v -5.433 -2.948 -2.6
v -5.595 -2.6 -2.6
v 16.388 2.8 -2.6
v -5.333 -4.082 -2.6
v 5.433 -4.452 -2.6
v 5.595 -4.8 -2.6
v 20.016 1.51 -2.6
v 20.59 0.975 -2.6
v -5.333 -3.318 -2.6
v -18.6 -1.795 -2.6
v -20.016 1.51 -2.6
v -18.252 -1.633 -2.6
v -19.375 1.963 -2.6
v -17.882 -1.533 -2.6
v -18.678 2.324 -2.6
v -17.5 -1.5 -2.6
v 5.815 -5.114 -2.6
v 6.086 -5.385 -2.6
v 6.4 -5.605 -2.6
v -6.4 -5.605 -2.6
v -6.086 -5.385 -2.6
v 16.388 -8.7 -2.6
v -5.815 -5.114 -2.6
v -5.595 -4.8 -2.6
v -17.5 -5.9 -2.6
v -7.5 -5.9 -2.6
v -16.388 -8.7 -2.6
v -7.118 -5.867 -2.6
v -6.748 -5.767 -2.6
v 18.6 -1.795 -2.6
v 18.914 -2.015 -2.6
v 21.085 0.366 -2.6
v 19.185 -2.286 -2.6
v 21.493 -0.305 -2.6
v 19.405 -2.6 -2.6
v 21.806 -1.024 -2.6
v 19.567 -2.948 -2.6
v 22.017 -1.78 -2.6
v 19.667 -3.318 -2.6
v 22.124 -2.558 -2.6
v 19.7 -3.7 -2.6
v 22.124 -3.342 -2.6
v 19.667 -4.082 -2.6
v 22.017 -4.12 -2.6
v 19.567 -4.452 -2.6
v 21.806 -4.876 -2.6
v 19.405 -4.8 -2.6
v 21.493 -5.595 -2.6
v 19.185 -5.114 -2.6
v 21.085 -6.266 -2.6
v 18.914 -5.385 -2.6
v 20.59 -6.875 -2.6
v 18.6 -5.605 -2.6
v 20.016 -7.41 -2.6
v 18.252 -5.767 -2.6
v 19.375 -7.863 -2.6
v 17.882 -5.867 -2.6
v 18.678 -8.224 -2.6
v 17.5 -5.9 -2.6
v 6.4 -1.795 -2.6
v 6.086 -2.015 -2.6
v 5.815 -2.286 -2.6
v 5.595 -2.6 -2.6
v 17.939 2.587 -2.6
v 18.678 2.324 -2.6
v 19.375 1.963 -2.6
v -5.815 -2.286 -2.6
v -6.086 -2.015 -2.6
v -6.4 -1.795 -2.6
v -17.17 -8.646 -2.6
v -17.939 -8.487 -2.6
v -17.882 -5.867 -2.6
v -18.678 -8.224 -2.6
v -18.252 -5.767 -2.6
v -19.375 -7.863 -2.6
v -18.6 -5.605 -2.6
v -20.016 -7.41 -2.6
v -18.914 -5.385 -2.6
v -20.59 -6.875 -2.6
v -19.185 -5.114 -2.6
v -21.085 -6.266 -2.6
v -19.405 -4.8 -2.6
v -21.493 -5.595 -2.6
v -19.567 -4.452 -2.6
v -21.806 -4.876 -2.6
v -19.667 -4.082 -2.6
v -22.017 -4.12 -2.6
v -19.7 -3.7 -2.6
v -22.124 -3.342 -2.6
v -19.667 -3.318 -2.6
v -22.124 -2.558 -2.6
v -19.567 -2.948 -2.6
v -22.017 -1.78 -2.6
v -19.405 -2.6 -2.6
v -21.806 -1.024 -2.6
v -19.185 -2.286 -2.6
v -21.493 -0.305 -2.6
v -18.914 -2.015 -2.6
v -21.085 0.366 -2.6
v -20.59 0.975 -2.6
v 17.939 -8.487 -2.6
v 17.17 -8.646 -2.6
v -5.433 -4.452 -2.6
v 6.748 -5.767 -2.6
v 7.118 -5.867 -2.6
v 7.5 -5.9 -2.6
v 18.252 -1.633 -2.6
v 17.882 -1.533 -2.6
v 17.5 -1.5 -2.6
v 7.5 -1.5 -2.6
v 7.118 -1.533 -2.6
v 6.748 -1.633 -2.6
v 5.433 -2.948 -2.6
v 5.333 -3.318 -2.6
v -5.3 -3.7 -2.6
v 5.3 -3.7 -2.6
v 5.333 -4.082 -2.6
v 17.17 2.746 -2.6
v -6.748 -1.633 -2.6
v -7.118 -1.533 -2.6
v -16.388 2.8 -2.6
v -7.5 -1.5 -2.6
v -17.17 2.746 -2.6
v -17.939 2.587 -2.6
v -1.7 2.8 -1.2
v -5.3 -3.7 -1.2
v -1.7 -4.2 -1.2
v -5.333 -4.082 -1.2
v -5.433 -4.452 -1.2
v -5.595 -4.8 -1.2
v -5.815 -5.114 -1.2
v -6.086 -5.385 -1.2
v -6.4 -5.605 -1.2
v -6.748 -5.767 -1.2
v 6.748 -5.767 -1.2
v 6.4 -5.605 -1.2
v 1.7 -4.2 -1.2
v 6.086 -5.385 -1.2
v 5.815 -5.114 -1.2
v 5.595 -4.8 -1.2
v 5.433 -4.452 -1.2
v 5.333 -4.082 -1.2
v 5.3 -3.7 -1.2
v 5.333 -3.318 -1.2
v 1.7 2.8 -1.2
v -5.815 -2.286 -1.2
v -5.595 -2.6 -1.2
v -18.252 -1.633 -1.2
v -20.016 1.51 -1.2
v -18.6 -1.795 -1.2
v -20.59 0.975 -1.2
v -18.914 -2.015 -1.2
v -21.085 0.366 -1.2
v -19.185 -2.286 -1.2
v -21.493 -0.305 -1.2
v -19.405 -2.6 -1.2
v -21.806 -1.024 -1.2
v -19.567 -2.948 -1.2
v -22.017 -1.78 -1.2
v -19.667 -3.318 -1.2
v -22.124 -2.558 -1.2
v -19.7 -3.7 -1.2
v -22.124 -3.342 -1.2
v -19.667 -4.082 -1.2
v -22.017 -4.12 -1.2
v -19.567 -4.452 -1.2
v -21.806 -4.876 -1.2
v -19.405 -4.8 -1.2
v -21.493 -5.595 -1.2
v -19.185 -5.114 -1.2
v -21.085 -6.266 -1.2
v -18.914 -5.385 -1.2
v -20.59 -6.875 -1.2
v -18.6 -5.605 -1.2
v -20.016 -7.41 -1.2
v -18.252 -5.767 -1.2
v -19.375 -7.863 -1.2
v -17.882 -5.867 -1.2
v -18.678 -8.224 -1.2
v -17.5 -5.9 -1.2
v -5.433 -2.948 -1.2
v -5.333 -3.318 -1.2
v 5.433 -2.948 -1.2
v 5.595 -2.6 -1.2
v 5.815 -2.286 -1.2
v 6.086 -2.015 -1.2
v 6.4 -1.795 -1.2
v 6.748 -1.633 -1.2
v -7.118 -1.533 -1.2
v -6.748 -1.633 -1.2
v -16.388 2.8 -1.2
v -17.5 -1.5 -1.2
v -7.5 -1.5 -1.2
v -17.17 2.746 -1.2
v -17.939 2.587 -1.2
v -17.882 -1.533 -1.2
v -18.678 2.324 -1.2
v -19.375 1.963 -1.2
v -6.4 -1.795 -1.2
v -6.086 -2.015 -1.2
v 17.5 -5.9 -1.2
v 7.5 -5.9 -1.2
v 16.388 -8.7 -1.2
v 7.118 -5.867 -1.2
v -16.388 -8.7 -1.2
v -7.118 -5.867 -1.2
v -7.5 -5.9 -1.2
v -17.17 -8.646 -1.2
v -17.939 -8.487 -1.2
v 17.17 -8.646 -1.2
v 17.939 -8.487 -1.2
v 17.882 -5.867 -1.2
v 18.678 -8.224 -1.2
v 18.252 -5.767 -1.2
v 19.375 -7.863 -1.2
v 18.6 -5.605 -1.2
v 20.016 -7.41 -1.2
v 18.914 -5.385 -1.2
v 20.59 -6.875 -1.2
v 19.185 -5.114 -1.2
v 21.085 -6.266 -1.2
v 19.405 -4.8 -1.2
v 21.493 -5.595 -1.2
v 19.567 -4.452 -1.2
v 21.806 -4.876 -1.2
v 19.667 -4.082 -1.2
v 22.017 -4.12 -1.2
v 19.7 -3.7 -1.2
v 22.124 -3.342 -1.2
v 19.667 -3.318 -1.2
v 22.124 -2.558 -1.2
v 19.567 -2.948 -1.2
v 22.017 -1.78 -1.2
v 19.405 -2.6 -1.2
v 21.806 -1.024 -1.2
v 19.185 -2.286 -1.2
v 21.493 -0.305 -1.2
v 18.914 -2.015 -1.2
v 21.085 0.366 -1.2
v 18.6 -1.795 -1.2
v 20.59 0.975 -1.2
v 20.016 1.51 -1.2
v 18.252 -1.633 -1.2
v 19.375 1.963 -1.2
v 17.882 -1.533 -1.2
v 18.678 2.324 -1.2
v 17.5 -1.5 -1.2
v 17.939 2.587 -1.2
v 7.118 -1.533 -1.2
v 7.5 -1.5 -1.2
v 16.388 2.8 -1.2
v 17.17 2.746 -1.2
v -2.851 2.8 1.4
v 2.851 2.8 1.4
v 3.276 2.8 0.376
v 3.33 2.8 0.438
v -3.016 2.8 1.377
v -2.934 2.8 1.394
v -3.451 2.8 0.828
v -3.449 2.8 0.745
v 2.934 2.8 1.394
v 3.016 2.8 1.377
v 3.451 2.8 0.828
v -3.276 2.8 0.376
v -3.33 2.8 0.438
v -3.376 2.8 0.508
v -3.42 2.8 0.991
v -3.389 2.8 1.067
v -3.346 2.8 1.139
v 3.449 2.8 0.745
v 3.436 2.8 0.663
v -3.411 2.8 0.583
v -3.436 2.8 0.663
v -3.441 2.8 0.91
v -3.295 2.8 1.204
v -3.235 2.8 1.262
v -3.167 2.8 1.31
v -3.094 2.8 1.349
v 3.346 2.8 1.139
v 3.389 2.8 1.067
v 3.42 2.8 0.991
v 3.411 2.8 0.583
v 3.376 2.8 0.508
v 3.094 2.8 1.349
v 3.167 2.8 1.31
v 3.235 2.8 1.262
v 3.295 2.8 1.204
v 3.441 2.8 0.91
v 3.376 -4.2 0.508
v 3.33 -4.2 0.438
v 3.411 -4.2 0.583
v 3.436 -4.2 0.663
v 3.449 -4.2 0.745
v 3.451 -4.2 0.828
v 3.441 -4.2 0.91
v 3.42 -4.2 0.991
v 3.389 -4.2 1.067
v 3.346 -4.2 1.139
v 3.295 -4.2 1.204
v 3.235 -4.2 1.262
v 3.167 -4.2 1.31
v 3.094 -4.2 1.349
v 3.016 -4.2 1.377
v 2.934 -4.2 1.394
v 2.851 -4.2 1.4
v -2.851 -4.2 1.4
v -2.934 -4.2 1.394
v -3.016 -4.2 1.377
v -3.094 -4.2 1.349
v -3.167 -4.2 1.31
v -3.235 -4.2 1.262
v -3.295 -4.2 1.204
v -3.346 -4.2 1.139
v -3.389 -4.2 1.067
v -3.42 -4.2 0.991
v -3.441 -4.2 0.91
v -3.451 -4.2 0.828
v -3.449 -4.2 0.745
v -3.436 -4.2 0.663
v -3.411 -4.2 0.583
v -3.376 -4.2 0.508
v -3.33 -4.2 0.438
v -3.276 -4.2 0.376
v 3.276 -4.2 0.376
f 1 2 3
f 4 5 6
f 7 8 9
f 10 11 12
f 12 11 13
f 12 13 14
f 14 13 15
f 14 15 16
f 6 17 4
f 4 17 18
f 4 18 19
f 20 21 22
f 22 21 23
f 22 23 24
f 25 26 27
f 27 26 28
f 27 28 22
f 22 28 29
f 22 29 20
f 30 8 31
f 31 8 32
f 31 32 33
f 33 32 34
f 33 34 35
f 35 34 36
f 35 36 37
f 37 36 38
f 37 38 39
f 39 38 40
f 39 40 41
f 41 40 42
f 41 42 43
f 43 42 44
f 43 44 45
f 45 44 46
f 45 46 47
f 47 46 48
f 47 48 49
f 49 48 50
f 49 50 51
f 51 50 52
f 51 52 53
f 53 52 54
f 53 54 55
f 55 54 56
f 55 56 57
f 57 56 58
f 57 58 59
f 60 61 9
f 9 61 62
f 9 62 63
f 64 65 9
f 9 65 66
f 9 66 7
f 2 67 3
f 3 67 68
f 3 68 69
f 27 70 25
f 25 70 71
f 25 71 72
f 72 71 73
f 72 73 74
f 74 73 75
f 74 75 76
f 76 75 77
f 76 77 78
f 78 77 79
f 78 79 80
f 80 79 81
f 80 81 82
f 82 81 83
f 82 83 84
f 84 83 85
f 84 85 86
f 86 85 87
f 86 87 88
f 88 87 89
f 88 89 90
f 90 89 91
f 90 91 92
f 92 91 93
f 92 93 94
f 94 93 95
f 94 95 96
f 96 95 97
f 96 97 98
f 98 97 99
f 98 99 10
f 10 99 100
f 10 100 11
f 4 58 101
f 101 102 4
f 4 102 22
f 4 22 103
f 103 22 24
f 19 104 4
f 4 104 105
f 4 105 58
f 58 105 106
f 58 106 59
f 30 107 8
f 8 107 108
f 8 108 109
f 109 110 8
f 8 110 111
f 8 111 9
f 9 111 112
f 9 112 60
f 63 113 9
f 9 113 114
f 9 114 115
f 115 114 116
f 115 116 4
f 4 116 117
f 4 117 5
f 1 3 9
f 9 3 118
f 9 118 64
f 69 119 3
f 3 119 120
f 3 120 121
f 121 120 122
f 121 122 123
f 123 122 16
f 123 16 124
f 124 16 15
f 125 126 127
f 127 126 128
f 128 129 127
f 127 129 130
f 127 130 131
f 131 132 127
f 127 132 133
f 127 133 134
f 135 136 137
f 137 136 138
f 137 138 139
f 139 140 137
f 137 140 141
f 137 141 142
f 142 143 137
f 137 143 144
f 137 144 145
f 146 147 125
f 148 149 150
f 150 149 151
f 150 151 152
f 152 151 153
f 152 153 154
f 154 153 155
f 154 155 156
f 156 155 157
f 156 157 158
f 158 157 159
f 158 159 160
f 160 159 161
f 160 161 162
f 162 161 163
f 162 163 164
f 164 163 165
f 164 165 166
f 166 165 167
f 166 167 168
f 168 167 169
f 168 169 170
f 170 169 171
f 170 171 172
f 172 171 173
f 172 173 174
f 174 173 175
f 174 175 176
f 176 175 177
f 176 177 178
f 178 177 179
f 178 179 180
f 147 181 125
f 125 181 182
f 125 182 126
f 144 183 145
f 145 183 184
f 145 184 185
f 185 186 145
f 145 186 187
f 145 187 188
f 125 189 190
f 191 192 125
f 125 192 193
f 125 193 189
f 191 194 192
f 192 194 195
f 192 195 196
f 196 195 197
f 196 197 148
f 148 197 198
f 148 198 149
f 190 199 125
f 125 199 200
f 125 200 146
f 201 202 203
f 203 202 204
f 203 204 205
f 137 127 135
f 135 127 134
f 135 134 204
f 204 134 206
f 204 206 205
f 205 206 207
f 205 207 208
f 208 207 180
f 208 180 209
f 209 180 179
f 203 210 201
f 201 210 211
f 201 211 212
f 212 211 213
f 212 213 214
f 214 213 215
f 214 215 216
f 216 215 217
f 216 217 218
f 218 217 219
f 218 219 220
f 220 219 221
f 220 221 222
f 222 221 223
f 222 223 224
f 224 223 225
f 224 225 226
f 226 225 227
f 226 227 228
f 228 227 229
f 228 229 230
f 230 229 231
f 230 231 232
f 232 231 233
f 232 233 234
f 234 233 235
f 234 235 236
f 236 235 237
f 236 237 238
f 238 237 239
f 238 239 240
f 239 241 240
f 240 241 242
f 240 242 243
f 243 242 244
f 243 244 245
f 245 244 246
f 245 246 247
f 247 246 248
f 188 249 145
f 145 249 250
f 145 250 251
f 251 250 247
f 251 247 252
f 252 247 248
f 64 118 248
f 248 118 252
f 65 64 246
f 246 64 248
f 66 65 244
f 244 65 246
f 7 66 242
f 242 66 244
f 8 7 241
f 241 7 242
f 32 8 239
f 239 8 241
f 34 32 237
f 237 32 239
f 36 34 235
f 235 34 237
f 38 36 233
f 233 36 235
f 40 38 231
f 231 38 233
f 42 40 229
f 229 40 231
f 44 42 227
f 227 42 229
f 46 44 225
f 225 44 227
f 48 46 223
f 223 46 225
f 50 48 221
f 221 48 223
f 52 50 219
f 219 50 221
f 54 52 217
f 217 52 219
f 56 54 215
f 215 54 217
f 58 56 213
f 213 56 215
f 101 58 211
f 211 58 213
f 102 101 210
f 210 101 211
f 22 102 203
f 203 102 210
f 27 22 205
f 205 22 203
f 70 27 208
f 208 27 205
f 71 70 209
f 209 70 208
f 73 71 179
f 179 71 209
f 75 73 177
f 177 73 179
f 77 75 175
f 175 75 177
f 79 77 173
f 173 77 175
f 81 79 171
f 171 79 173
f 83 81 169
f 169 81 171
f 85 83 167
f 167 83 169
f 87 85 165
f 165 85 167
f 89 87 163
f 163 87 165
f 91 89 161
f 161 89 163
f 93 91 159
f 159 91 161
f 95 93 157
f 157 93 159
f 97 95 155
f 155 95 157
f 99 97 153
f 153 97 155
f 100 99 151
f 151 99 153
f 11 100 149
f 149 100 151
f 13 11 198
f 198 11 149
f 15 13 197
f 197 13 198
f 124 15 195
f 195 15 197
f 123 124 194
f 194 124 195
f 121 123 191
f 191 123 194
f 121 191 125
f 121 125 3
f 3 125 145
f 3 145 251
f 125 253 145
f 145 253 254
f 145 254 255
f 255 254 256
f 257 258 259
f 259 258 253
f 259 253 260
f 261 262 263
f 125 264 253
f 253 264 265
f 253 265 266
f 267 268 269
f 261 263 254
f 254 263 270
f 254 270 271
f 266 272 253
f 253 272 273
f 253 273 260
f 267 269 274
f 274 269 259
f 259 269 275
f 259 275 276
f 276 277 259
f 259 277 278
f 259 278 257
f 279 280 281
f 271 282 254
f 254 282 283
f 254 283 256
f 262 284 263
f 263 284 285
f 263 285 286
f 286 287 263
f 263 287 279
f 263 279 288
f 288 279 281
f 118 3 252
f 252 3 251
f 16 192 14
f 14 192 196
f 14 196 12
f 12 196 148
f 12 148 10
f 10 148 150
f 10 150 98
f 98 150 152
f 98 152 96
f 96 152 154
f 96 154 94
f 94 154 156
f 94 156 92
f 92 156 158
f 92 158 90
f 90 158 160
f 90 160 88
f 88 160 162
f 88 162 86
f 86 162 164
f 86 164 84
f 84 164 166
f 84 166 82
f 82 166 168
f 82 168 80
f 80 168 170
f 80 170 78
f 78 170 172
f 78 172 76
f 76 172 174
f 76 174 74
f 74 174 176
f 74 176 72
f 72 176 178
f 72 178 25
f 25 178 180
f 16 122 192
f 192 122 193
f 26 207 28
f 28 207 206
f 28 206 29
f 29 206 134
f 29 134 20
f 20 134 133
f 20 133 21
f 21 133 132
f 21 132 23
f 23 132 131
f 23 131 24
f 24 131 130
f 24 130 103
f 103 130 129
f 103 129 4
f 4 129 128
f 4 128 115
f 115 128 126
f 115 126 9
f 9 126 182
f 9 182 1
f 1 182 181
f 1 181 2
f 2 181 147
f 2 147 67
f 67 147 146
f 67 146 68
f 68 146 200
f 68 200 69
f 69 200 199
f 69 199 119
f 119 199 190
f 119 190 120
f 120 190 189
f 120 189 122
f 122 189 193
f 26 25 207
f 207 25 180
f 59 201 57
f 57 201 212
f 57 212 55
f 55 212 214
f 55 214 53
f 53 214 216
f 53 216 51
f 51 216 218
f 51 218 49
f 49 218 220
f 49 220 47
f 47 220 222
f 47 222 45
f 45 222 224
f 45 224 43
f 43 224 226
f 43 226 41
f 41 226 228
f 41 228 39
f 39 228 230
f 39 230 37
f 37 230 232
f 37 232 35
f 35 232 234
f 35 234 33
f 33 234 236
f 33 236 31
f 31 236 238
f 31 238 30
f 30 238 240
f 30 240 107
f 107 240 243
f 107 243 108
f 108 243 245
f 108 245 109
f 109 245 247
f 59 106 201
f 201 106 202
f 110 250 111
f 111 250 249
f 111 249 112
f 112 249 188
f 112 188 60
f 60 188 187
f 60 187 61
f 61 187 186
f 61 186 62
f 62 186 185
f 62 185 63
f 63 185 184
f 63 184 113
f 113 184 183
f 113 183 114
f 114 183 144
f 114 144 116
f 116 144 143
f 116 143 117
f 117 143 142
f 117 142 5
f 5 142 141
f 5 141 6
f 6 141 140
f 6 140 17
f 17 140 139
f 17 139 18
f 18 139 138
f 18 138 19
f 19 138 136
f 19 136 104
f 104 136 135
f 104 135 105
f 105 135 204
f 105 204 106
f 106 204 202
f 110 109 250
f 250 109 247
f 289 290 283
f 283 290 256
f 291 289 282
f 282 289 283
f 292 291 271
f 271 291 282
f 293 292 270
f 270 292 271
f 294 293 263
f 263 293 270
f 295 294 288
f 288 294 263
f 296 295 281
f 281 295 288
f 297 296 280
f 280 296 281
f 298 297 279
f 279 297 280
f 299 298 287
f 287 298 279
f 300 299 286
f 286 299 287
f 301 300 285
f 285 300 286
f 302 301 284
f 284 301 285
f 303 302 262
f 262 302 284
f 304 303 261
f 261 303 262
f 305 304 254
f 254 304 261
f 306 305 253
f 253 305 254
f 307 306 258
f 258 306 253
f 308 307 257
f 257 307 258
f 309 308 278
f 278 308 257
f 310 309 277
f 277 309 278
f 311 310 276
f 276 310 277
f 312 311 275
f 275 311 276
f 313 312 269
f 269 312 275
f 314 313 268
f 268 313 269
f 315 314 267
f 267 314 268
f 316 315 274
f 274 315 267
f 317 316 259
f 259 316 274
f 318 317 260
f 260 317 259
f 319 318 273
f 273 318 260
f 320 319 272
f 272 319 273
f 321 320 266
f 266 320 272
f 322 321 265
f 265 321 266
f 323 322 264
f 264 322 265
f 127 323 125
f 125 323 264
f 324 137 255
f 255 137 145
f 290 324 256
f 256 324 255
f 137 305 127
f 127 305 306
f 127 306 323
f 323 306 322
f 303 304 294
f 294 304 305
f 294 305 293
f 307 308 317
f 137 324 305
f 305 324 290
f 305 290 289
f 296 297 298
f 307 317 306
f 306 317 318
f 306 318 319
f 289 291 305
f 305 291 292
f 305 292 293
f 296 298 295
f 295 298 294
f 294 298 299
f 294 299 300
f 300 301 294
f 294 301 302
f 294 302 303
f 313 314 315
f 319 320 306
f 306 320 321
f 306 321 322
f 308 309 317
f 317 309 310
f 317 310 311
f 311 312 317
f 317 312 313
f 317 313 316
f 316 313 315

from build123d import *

# Parameters (mm, degrees)
BOSS_EXTRUDE1_DEPTH = 1.39999995
CUT_EXTRUDE1_DEPTH  = 2.39999995
BOSS_EXTRUDE2_DEPTH = 6.99999975


with BuildPart() as part:
    # Sketch1 → Boss-Extrude1 (new body)
    with BuildSketch(Plane.XY.offset(-1.200000057)):
        Polygon((17.170472071, 2.74639437), (16.38751477, 2.799950074), (-16.38751477, 2.799950074), (-17.170472071, 2.74639437), (-17.93884486, 2.586724702), (-18.678320572, 2.323914785), (-19.375121221, 1.962861512), (-20.016269758, 1.510289963), (-20.589821041, 0.974630471), (-21.085090935, 0.365861692), (-21.492853761, -0.304676127), (-21.80551365, -1.024491969), (-22.017247975, -1.780177932), (-22.12410979, -2.557656262), (-22.12410979, -3.342443844), (-22.017247975, -4.119921941), (-21.80551365, -4.875607789), (-21.492853761, -5.595424213), (-21.085090935, -6.265962031), (-20.589821041, -6.874730811), (-20.016269758, -7.410389837), (-19.375121221, -7.862961851), (-18.678320572, -8.224015124), (-17.93884486, -8.48682411), (-17.170472071, -8.646493778), (-16.38751477, -8.700050414), (16.38751477, -8.700050414), (17.170472071, -8.646493778), (17.93884486, -8.48682411), (18.678320572, -8.224015124), (19.375121221, -7.862961851), (20.016269758, -7.410389837), (20.589821041, -6.874730811), (21.085090935, -6.265962031), (21.492853761, -5.595424213), (21.80551365, -4.875607789), (22.017247975, -4.119921941), (22.12410979, -3.342443844), (22.12410979, -2.557656262), (22.017247975, -1.780177932), (21.80551365, -1.024491969), (21.492853761, -0.304676127), (21.085090935, 0.365861692), (20.589821041, 0.974630471), (20.016269758, 1.510289963), (19.375121221, 1.962861512), (18.678320572, 2.323914785), (17.93884486, 2.586724702), align=None)
    extrude(amount=-BOSS_EXTRUDE1_DEPTH)

    # Sketch2 → Cut-Extrude1 (cut, through all)
    with BuildSketch(Plane.XY.offset(-1.200000057)):
        with BuildLine():
            Line((-7.499999832, -5.900050048), (-17.500000075, -5.900050048))
            ThreePointArc((-17.500000075, -5.900050048), (-19.700000075, -3.700050048), (-17.500000075, -1.500050048))
            Line((-17.500000075, -1.500050048), (-7.499999832, -1.500050048))
            ThreePointArc((-7.499999832, -1.500050048), (-5.299999832, -3.700050048), (-7.499999832, -5.900050048))
        make_face()
    cut_extrude1 = extrude(amount=-CUT_EXTRUDE1_DEPTH, mode=Mode.SUBTRACT)

    # Mirror1: Cut-Extrude1 across plane
    add(cut_extrude1.mirror(Plane(origin=(0, 0, 0), x_dir=(0, 0, 1), z_dir=(1, 0, 0))), mode=Mode.SUBTRACT)

    # Sketch4 → Boss-Extrude2 (add)
    with BuildSketch(Plane(origin=(0, 2.799950074, 0), x_dir=(1, 0, 0), z_dir=(0, 1, 0))):
        Polygon((3.330282168, -0.438419171), (3.275736002, -0.375735923), (1.700000023, 1.200000057), (-1.700000023, 1.200000057), (-3.275736002, -0.375735923), (-3.330282168, -0.438419171), (-3.375645261, -0.508037279), (-3.410955193, -0.583254965), (-3.435534658, -0.662629609), (-3.448912408, -0.744638965), (-3.450831631, -0.827709911), (-3.441255772, -0.910249539), (-3.420368303, -0.990674831), (-3.388569923, -1.067443052), (-3.346470417, -1.139081782), (-3.294877242, -1.204217318), (-3.234779928, -1.261600293), (-3.167331219, -1.310130116), (-3.093824489, -1.348876162), (-3.015669761, -1.377095236), (-2.934365766, -1.394246239), (-2.851471771, -1.39999995), (2.851471771, -1.39999995), (2.934365766, -1.394246239), (3.015669761, -1.377095236), (3.093824489, -1.348876162), (3.167331219, -1.310130116), (3.234779928, -1.261600293), (3.294877242, -1.204217318), (3.346470417, -1.139081782), (3.388569923, -1.067443052), (3.420368303, -0.990674831), (3.441255772, -0.910249539), (3.450831631, -0.827709911), (3.448912408, -0.744638965), (3.435534658, -0.662629609), (3.410955193, -0.583254965), (3.375645261, -0.508037279), align=None)
    extrude(amount=-BOSS_EXTRUDE2_DEPTH)


solid = part.part
